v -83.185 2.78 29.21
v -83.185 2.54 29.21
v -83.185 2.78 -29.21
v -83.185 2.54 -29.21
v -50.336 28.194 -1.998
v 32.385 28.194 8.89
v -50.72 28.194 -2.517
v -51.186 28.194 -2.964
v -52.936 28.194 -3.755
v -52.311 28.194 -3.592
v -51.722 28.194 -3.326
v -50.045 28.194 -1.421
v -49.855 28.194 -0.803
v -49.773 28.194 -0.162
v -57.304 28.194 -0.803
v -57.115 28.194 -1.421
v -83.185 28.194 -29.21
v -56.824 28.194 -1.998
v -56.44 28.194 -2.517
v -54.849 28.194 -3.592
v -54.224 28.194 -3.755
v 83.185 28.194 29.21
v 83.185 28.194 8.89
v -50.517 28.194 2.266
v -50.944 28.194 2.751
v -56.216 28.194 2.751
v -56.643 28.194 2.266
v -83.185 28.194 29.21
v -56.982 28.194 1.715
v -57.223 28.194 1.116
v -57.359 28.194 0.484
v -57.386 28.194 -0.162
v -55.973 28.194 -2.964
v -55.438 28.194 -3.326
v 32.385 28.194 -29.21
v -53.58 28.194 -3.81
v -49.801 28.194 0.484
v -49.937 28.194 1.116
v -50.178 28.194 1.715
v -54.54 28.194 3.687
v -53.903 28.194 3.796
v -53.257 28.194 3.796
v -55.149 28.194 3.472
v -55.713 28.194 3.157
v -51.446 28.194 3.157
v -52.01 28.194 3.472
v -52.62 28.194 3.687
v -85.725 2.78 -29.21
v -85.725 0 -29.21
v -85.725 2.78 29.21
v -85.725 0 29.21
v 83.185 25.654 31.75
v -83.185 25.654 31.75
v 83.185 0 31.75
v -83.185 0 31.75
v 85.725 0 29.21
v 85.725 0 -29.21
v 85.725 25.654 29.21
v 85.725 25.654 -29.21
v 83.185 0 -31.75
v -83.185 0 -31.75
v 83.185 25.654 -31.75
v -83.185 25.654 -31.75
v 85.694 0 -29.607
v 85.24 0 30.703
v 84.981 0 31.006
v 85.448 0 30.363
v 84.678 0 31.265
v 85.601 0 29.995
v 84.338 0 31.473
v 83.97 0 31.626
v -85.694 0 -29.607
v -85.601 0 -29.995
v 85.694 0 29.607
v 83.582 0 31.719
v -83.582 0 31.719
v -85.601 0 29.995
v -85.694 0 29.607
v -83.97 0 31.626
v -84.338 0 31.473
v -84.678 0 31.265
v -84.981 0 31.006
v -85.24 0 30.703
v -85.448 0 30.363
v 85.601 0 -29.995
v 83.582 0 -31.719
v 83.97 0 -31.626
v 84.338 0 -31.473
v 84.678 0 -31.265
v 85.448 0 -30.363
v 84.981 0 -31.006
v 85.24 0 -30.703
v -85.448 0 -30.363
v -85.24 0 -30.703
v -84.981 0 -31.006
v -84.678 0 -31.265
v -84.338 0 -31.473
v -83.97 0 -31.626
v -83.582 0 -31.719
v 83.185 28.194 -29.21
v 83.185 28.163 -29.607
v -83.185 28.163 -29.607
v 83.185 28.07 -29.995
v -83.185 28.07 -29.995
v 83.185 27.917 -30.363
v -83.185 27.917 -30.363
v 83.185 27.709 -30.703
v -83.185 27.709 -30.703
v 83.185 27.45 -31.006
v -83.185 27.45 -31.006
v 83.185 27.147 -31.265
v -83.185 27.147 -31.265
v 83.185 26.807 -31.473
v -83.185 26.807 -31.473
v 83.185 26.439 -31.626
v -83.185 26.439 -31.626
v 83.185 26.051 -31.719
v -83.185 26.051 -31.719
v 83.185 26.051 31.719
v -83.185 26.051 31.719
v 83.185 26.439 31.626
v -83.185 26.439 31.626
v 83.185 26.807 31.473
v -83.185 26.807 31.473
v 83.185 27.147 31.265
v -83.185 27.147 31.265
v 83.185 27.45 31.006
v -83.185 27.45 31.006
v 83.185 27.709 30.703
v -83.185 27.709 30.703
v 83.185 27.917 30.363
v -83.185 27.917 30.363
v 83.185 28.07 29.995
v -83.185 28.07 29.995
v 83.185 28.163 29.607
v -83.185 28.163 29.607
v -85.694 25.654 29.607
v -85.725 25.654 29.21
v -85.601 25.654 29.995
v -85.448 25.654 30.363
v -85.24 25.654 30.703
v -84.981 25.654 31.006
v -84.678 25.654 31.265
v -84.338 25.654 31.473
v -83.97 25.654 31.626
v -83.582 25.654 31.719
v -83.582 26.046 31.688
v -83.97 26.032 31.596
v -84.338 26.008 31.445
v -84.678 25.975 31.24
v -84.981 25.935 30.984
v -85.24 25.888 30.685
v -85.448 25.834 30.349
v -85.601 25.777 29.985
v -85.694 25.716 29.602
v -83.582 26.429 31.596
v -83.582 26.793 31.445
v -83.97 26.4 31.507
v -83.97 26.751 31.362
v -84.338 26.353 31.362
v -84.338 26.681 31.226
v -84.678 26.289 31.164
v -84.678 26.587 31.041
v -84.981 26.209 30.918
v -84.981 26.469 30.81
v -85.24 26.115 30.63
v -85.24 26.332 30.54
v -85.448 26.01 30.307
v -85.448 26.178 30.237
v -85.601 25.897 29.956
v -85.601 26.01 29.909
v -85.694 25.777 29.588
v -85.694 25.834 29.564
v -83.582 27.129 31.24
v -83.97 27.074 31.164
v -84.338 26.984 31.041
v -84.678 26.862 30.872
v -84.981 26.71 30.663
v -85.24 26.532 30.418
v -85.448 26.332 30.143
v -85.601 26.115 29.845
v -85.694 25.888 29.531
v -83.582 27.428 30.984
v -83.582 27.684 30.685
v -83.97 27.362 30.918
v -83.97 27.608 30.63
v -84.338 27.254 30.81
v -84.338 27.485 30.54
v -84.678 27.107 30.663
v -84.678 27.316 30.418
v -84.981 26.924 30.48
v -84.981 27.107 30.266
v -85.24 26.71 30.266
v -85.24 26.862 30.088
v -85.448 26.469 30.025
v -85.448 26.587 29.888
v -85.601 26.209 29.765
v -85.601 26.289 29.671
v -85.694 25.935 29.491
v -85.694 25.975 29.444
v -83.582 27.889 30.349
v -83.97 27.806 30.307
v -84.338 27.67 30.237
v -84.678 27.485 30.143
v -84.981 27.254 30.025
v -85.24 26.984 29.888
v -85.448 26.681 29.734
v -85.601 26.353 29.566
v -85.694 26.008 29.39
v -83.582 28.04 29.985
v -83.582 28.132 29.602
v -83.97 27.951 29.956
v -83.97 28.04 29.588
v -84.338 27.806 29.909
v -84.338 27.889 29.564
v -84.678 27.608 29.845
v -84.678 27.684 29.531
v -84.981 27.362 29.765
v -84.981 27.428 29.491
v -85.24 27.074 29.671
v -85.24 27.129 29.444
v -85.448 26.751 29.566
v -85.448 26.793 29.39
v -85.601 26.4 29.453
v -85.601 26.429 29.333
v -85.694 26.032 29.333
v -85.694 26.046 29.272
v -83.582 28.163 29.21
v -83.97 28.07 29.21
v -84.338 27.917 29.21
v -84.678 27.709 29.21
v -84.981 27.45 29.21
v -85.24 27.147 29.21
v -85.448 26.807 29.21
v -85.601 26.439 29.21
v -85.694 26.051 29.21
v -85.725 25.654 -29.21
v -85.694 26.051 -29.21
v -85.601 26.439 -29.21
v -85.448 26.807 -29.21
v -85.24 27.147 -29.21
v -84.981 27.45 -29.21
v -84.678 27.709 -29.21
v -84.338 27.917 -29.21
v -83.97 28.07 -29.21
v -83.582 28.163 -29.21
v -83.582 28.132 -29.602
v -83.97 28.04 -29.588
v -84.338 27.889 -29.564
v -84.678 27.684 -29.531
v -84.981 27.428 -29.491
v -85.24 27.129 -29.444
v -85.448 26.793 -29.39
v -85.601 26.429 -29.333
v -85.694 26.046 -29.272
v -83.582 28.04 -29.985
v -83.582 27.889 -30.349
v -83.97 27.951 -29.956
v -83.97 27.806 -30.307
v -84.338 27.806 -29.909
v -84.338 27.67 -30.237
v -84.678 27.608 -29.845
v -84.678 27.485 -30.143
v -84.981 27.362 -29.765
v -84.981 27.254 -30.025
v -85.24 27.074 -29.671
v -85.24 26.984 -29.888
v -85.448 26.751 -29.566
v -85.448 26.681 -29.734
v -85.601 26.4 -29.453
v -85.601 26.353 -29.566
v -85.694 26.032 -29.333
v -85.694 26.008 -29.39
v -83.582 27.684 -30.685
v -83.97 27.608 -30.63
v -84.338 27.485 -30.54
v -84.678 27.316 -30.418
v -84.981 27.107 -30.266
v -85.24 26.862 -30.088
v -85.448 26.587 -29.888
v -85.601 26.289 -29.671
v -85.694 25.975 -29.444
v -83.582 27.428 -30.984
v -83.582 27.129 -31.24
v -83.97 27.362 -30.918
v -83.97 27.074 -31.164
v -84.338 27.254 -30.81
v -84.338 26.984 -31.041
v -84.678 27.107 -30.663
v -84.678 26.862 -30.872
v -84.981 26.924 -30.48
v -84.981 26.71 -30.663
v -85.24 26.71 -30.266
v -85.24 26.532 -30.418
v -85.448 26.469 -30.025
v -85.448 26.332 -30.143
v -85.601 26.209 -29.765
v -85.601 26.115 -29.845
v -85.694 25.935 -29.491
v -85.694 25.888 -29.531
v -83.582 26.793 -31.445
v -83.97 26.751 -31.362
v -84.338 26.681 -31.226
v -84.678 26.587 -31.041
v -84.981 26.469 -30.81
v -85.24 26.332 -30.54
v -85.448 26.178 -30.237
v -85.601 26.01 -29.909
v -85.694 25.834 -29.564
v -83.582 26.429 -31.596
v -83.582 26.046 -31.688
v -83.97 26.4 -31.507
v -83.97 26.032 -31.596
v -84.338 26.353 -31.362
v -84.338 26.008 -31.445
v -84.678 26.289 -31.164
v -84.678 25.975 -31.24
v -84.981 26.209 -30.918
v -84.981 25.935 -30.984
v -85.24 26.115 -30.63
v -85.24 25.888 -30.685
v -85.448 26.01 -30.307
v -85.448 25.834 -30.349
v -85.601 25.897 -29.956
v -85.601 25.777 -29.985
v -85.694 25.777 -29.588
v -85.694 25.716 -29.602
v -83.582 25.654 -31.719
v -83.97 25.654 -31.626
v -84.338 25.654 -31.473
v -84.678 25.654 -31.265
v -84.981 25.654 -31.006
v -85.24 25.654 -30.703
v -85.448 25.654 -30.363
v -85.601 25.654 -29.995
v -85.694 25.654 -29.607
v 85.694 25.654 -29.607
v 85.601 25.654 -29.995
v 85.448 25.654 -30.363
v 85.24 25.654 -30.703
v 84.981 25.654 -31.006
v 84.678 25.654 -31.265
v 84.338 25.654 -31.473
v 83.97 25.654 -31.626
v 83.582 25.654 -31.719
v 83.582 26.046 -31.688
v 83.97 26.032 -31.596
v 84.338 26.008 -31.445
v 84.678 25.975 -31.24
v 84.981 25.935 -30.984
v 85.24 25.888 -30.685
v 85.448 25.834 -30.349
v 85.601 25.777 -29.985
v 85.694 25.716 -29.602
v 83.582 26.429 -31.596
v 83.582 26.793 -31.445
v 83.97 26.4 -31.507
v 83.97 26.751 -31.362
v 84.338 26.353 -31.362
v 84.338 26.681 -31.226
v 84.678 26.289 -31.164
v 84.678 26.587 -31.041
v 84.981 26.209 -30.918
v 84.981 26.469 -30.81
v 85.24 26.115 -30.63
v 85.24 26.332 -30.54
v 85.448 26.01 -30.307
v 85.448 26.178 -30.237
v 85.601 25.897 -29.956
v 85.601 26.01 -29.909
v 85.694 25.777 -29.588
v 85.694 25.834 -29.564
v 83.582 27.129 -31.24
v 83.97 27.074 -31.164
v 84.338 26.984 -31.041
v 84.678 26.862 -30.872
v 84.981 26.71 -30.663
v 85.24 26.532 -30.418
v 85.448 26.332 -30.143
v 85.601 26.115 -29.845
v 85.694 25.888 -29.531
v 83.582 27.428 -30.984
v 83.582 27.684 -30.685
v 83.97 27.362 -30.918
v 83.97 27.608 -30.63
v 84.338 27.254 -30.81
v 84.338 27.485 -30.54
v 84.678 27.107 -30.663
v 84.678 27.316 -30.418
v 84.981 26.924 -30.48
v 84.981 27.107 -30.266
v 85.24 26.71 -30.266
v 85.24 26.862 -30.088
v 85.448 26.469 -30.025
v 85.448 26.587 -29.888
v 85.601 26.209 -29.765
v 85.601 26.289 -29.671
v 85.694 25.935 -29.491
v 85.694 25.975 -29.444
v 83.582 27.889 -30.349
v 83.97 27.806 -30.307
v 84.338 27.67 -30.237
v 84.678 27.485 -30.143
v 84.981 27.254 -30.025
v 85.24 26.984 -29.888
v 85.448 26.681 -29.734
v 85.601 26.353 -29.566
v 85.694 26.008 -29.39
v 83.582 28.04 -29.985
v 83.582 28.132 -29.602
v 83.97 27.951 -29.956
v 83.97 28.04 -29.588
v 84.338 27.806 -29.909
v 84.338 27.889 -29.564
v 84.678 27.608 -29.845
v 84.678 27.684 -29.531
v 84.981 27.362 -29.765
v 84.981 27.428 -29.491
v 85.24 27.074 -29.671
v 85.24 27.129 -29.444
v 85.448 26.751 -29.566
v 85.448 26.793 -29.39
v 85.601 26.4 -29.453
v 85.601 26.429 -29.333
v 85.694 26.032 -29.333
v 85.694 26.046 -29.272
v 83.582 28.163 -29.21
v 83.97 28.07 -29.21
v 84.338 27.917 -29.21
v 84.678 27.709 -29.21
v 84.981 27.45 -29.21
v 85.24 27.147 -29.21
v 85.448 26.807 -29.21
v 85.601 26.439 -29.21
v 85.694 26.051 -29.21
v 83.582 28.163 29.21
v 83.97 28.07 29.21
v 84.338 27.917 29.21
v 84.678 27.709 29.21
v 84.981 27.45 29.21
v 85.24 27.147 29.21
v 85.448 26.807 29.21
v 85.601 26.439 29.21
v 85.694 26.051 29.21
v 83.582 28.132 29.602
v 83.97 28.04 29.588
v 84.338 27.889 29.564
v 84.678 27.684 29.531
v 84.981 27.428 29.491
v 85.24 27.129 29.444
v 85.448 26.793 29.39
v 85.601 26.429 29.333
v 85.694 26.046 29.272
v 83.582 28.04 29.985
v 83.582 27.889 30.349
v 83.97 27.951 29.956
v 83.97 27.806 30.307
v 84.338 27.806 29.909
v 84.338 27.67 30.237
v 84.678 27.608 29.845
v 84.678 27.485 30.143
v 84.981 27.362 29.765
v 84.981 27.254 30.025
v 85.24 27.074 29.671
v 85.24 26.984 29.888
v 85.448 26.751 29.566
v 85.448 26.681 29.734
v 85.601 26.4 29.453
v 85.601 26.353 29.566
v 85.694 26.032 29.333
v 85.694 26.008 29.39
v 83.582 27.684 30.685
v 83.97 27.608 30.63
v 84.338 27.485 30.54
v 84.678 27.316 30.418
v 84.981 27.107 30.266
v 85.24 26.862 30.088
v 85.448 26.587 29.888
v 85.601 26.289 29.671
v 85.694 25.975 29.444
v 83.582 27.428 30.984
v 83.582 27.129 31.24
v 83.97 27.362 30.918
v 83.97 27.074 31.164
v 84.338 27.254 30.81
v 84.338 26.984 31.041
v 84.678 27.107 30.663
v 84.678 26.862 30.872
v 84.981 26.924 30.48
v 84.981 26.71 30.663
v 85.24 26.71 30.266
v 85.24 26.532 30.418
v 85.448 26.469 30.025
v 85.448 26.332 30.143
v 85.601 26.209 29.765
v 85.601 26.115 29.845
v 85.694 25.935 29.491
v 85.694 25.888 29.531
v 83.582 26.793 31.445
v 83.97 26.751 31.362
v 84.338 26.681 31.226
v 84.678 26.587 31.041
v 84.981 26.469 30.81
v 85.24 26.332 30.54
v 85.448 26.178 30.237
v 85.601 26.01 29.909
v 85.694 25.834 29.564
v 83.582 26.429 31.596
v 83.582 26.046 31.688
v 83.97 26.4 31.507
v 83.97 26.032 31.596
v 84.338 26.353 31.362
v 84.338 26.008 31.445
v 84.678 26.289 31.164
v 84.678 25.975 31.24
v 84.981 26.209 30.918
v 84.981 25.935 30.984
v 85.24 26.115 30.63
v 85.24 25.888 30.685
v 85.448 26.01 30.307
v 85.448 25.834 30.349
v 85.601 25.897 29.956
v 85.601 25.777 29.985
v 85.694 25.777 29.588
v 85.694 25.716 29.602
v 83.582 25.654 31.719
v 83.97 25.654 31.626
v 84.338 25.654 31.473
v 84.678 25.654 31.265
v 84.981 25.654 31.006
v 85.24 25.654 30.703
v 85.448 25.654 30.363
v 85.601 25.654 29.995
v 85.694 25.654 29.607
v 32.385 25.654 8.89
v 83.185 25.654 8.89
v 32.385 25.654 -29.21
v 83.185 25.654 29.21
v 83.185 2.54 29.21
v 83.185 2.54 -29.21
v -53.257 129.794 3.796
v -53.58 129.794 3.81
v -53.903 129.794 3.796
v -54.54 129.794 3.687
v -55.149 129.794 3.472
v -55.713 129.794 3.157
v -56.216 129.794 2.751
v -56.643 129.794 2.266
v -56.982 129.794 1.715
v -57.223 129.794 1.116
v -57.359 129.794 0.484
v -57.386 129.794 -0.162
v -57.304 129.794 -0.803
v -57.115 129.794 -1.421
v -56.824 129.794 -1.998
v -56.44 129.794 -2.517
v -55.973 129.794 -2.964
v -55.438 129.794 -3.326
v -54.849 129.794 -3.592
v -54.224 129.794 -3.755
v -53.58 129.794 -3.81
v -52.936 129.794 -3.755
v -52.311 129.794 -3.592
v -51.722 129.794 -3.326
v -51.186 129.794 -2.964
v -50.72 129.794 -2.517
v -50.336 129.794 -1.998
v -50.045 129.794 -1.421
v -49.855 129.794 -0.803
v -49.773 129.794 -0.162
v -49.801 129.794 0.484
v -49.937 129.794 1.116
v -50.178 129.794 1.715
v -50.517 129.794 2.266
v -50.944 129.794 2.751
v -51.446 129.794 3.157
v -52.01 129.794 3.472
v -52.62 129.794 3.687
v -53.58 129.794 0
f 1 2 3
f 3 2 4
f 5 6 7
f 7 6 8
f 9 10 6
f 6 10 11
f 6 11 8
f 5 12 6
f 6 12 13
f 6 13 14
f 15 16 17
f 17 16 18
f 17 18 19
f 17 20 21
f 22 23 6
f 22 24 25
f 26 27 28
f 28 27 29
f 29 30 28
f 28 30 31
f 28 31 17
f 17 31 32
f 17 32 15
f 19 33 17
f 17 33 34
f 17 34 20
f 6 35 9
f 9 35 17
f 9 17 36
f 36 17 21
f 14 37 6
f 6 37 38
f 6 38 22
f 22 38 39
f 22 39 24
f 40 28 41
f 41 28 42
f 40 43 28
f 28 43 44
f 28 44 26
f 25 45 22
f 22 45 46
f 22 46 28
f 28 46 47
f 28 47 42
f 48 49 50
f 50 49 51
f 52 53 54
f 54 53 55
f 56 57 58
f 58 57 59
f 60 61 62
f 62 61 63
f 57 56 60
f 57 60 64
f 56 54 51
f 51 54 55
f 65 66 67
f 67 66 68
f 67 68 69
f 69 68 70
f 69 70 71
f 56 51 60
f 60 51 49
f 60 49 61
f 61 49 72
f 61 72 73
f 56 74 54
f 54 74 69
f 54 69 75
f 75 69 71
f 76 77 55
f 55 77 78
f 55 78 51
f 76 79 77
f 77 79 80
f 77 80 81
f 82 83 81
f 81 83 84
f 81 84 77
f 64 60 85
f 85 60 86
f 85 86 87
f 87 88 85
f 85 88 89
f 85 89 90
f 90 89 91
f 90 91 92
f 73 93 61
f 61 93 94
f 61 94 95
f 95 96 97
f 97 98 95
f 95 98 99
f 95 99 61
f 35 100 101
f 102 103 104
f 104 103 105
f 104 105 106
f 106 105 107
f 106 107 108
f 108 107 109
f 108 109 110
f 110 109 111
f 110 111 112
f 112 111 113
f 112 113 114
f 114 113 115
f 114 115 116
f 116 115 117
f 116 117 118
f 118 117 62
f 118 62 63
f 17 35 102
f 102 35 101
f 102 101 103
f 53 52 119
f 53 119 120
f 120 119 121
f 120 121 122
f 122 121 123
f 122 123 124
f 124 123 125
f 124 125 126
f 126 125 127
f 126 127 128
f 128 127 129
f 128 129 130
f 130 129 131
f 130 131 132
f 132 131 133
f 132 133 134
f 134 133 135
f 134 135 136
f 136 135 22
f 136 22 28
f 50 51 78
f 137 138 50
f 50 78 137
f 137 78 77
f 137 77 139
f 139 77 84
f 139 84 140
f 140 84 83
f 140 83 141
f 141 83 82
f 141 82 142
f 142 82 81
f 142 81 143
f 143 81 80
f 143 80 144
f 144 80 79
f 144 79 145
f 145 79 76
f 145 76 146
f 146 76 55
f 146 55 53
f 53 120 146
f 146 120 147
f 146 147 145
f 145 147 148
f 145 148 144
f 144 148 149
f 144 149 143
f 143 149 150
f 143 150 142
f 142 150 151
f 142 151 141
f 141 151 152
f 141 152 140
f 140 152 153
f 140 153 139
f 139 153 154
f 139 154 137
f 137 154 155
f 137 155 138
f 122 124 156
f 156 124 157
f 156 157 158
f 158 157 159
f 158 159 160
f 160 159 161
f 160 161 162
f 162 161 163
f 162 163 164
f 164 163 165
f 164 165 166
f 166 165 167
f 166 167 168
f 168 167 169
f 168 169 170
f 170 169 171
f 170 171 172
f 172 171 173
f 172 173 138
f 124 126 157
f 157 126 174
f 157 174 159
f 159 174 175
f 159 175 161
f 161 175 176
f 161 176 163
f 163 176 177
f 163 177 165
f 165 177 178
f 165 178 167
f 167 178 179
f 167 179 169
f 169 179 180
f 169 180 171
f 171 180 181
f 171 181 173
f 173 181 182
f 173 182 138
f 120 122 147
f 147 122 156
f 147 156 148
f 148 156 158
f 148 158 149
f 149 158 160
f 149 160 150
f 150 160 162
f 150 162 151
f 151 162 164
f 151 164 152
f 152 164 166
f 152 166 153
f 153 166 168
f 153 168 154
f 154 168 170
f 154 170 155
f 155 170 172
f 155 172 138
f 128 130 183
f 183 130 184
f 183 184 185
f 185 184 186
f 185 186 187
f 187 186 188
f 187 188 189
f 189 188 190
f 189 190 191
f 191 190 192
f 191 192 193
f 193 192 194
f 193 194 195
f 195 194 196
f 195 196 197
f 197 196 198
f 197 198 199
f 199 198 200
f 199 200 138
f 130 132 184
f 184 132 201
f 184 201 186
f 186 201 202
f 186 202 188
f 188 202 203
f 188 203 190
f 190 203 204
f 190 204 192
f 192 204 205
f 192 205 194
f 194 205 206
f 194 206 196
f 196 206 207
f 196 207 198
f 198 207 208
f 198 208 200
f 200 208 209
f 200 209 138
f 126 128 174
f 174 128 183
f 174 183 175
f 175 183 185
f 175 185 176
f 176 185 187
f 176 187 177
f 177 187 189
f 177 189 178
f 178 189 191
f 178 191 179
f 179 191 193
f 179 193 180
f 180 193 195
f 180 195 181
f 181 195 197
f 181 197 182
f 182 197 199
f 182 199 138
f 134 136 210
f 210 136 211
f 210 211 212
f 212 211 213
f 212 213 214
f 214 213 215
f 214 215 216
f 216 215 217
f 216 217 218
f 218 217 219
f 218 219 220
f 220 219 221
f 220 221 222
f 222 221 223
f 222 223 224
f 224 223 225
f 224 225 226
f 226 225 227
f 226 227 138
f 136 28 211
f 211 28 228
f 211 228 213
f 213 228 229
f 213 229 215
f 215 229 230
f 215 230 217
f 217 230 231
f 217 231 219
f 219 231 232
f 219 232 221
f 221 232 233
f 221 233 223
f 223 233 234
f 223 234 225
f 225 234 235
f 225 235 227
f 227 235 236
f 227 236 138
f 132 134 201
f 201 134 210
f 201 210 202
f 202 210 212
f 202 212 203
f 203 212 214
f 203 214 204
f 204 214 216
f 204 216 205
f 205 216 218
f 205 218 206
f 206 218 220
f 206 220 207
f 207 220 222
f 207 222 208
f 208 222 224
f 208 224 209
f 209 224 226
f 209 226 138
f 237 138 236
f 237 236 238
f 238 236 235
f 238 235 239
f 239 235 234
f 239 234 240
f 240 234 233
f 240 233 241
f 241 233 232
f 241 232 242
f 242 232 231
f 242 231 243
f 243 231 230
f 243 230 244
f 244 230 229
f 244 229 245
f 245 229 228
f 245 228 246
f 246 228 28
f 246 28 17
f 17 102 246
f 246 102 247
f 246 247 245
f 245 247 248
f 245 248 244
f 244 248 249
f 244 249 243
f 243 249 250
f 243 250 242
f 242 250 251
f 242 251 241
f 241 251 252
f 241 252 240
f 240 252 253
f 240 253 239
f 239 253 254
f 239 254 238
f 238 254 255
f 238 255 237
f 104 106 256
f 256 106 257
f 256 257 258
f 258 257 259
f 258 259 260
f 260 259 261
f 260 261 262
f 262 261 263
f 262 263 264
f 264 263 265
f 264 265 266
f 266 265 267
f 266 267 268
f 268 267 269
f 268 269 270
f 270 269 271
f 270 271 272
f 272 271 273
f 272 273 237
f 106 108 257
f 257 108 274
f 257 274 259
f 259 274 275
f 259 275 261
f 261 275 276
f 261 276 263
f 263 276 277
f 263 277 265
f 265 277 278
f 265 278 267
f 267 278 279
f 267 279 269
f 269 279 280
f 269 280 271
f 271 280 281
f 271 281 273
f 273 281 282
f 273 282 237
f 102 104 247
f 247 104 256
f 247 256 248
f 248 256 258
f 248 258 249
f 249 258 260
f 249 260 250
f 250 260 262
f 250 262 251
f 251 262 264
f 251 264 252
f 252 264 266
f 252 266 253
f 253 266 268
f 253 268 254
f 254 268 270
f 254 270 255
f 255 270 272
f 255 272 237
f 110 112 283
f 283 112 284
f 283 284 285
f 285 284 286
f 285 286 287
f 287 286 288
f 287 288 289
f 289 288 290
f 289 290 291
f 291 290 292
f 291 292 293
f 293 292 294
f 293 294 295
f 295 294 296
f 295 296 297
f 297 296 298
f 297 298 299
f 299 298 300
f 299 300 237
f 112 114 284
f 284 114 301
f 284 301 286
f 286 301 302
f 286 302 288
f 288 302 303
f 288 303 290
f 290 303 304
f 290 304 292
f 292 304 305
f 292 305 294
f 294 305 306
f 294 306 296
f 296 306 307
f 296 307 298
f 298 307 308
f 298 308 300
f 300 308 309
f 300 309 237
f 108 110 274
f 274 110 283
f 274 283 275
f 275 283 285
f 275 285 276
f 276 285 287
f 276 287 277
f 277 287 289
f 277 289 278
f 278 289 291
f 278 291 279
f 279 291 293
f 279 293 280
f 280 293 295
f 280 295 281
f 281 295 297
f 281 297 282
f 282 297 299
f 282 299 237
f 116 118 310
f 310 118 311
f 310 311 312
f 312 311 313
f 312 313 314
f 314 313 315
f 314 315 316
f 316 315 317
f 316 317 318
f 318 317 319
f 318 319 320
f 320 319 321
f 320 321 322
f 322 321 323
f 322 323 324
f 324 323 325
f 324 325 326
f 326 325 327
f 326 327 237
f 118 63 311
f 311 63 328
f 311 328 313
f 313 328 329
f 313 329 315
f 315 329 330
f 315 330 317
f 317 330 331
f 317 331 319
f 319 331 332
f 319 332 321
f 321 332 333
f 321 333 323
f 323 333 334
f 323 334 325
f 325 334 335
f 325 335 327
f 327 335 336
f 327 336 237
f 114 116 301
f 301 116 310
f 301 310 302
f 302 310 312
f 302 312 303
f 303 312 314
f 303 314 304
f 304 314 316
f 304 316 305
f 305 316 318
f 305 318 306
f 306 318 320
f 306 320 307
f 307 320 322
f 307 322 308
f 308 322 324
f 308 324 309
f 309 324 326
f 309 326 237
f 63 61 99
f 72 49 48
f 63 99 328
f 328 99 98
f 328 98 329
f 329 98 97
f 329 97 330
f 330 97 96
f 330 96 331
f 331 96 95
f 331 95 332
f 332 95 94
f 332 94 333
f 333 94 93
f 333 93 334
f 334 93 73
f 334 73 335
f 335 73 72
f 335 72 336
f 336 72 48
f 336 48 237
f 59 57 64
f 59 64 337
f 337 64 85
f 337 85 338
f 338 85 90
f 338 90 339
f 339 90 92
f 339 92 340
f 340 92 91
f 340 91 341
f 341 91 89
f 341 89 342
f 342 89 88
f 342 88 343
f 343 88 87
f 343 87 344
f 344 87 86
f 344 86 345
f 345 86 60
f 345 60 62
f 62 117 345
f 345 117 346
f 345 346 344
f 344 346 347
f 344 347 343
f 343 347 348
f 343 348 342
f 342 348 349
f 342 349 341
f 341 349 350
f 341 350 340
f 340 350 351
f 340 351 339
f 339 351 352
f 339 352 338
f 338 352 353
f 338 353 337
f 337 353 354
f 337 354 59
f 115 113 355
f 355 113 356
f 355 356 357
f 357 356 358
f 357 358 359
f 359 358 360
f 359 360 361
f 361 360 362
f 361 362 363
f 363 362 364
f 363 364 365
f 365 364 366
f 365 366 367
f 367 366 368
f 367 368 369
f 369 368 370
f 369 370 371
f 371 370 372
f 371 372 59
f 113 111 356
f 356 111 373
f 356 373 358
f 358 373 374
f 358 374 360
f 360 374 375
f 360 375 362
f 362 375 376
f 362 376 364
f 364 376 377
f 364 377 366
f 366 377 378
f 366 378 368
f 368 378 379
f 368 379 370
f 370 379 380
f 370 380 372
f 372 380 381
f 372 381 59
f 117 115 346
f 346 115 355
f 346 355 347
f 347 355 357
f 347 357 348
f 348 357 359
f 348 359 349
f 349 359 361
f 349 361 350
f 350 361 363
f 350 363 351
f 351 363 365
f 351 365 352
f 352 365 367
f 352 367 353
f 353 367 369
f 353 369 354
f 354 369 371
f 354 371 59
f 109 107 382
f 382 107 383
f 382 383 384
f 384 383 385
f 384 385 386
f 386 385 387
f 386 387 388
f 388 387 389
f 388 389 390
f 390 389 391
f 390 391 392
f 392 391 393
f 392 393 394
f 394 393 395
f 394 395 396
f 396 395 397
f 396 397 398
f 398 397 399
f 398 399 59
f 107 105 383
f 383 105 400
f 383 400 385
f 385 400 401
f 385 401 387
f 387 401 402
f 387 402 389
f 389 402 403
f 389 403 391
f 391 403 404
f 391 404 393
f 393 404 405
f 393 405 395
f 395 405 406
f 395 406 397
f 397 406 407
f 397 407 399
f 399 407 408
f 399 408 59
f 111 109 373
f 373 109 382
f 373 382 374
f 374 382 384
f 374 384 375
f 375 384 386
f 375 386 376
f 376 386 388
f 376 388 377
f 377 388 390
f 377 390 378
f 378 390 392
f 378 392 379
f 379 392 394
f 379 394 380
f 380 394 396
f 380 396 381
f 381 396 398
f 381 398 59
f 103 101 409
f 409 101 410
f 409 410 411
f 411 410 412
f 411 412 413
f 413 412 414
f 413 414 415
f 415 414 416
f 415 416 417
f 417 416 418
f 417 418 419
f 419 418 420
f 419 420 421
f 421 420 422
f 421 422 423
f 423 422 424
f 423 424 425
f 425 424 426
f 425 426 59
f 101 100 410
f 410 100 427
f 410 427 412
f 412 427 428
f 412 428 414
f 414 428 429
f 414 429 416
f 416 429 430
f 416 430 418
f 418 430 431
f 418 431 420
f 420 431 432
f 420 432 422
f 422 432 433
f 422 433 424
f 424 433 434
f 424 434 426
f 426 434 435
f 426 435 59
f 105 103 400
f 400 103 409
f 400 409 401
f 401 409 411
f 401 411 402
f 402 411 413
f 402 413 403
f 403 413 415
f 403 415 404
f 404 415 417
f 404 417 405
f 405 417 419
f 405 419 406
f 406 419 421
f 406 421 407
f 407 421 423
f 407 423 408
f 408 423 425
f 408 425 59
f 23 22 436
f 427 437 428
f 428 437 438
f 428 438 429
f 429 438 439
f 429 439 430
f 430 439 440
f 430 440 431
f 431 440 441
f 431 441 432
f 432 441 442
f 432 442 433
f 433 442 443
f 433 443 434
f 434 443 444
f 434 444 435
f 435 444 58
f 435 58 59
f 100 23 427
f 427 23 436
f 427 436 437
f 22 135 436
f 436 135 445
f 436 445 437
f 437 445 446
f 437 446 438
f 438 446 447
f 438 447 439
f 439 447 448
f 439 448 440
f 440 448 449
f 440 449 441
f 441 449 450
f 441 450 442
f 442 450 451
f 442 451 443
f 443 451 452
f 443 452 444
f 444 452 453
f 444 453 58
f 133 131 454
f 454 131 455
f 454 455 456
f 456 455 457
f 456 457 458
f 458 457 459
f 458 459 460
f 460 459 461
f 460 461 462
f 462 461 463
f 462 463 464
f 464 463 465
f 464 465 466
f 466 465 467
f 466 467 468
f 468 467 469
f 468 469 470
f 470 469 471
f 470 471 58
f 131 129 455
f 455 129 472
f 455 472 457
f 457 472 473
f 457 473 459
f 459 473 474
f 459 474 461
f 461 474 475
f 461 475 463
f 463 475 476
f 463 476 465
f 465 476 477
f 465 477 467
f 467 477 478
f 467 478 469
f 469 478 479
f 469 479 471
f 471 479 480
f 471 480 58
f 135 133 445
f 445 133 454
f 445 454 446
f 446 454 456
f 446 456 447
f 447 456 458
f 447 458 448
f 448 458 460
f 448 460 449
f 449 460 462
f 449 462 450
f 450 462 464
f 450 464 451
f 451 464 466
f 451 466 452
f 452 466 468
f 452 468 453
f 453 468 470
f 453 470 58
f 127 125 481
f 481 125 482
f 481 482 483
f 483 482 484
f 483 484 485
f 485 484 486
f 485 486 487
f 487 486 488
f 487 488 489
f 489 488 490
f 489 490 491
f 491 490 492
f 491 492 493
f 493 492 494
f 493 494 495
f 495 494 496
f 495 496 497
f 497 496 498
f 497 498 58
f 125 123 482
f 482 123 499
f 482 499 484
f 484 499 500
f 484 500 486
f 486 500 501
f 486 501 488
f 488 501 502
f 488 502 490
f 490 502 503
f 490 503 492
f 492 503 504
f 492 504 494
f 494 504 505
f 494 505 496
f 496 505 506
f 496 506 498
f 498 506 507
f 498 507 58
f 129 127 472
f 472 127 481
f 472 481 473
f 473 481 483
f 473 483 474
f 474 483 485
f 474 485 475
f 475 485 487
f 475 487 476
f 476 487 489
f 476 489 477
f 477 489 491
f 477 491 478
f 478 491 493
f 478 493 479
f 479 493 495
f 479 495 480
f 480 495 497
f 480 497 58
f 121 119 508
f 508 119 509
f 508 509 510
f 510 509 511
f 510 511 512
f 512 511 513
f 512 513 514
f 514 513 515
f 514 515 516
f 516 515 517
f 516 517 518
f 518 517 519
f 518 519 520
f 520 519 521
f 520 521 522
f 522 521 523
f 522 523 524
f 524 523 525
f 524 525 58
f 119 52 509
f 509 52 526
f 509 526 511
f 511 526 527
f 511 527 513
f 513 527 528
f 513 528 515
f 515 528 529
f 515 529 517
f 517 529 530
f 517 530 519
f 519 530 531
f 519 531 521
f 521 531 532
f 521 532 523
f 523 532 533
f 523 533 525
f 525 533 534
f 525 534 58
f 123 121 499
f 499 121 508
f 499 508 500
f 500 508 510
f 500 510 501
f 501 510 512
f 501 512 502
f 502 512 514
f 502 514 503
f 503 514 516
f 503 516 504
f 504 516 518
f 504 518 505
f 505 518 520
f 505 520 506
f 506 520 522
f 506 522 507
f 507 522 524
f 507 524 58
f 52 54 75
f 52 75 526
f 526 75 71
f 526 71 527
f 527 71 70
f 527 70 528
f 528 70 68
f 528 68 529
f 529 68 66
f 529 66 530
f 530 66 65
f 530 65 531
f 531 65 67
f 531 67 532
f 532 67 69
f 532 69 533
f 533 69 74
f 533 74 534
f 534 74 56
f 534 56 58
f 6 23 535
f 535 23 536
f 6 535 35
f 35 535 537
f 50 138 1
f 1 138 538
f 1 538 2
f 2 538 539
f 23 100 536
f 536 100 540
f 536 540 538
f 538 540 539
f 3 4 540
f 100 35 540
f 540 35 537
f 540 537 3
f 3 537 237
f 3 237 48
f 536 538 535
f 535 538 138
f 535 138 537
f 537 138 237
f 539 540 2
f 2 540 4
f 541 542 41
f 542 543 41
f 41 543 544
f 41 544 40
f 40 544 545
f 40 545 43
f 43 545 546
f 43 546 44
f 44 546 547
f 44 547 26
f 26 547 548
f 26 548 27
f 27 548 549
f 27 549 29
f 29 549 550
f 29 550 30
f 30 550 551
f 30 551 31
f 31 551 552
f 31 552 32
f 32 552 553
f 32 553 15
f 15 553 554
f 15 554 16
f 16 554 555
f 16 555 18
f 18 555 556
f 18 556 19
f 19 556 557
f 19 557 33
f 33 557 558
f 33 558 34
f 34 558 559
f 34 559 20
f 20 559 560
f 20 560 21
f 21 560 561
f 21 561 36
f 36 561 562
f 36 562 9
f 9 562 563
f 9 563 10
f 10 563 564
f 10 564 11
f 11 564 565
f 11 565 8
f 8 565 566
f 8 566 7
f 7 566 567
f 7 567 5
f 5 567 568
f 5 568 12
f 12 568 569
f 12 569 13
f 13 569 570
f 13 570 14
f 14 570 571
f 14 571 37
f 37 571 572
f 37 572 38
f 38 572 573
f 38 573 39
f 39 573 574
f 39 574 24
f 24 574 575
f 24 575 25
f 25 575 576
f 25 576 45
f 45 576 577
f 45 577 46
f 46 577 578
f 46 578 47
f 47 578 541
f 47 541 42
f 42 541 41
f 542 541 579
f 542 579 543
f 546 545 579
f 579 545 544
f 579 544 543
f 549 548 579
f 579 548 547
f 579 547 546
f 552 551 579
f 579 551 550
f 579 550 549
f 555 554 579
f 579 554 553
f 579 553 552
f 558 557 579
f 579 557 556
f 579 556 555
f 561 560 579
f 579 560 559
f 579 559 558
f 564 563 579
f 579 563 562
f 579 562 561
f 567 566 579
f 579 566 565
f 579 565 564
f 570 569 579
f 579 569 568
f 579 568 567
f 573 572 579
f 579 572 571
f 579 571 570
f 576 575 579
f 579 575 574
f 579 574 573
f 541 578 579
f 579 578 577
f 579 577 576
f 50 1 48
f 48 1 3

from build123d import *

# Parameters (mm, degrees)
SKETCH1_W           = 171.45
SKETCH1_H           = 63.5
BOSS_EXTRUDE1_DEPTH = 28.194
SHELL1_T            = 2.54
FILLET1_R           = 2.54
FILLET2_R           = 2.54
FILLET3_R           = 2.54
FILLET4_R           = 2.54
CUT_EXTRUDE4_REACH  = 97.665
SKETCH7_W           = 50.8
SKETCH7_H           = 38.1
SKETCH13_R          = 3.81
BOSS_EXTRUDE3_DEPTH = 101.6
CUT_EXTRUDE8_REACH  = 219.37
SKETCH24_W          = 58.42
SKETCH24_H          = 22.874339667


with BuildPart() as part:
    # Sketch1 → Boss-Extrude1 (new body)
    with BuildSketch(Plane(origin=(0, 0, 0), x_dir=(1, 0, 0), z_dir=(0, 1, 0))):
        Rectangle(SKETCH1_W, SKETCH1_H)
    extrude(amount=BOSS_EXTRUDE1_DEPTH)

    # Shell1 (no face opened: a closed hollow body)
    add(offset(amount=-SHELL1_T, mode=Mode.PRIVATE), mode=Mode.SUBTRACT)

    # Fillet1
    fillet1_edges = [part.edges().sort_by_distance(p)[0] for p in [
        (0, 28.194, -31.75),
    ]]
    fillet(fillet1_edges, radius=FILLET1_R)

    # Fillet2
    fillet2_edges = [part.edges().sort_by_distance(p)[0] for p in [
        (0, 28.194, 31.75),
    ]]
    fillet(fillet2_edges, radius=FILLET2_R)

    # Fillet3
    fillet3_edges = [part.edges().sort_by_distance(p)[0] for p in [
        (-85.725, 28.194, 0),
        (-85.725, 12.827, -31.75),
        (-85.725, 27.450051224, -31.006051224),
        (-85.725, 12.827, 31.75),
        (-85.725, 27.450051224, 31.006051224),
    ]]
    fillet(fillet3_edges, radius=FILLET3_R)

    # Fillet4
    fillet4_edges = [part.edges().sort_by_distance(p)[0] for p in [
        (85.725, 12.827, -31.75),
        (85.725, 27.450051224, -31.006051224),
        (85.725, 28.194, 0),
        (85.725, 12.827, 31.75),
        (85.725, 27.450051224, 31.006051224),
    ]]
    fillet(fillet4_edges, radius=FILLET4_R)

    # Sketch7 → Cut-Extrude4 (cut, up to next)
    with BuildSketch(Plane(origin=(0, 28.194, 0), x_dir=(1, 0, 0), z_dir=(0, 1, 0)), mode=Mode.PRIVATE) as cut_extrude4_sk1:
        with Locations((57.785, 10.16)):
            Rectangle(SKETCH7_W, SKETCH7_H)
    cut_extrude4_tool1 = extrude(cut_extrude4_sk1.sketch, amount=-CUT_EXTRUDE4_REACH, mode=Mode.PRIVATE) & part.part
    add(cut_extrude4_tool1.solids().sort_by_distance((57.785, 28.194, -10.16))[0], mode=Mode.SUBTRACT)

    # Sketch13 → Boss-Extrude3 (add)
    with BuildSketch(Plane(origin=(0, 28.194, 0), x_dir=(1, 0, 0), z_dir=(0, 1, 0))):
        with Locations(Location((-53.579839064, 0, 0), (0, 0, 90))):
            Circle(SKETCH13_R)
    extrude(amount=BOSS_EXTRUDE3_DEPTH)

    # Sketch24 → Cut-Extrude8 (cut, up to next)
    with BuildSketch(Plane.ZY.offset(85.725), mode=Mode.PRIVATE) as cut_extrude8_sk1:
        with Locations((0, 14.216830166)):
            Rectangle(SKETCH24_W, SKETCH24_H)
    cut_extrude8_tool1 = extrude(cut_extrude8_sk1.sketch, amount=-CUT_EXTRUDE8_REACH, mode=Mode.PRIVATE) & part.part
    add(cut_extrude8_tool1.solids().sort_by_distance((-85.725, 14.21683, 0))[0], mode=Mode.SUBTRACT)


solid = part.part
